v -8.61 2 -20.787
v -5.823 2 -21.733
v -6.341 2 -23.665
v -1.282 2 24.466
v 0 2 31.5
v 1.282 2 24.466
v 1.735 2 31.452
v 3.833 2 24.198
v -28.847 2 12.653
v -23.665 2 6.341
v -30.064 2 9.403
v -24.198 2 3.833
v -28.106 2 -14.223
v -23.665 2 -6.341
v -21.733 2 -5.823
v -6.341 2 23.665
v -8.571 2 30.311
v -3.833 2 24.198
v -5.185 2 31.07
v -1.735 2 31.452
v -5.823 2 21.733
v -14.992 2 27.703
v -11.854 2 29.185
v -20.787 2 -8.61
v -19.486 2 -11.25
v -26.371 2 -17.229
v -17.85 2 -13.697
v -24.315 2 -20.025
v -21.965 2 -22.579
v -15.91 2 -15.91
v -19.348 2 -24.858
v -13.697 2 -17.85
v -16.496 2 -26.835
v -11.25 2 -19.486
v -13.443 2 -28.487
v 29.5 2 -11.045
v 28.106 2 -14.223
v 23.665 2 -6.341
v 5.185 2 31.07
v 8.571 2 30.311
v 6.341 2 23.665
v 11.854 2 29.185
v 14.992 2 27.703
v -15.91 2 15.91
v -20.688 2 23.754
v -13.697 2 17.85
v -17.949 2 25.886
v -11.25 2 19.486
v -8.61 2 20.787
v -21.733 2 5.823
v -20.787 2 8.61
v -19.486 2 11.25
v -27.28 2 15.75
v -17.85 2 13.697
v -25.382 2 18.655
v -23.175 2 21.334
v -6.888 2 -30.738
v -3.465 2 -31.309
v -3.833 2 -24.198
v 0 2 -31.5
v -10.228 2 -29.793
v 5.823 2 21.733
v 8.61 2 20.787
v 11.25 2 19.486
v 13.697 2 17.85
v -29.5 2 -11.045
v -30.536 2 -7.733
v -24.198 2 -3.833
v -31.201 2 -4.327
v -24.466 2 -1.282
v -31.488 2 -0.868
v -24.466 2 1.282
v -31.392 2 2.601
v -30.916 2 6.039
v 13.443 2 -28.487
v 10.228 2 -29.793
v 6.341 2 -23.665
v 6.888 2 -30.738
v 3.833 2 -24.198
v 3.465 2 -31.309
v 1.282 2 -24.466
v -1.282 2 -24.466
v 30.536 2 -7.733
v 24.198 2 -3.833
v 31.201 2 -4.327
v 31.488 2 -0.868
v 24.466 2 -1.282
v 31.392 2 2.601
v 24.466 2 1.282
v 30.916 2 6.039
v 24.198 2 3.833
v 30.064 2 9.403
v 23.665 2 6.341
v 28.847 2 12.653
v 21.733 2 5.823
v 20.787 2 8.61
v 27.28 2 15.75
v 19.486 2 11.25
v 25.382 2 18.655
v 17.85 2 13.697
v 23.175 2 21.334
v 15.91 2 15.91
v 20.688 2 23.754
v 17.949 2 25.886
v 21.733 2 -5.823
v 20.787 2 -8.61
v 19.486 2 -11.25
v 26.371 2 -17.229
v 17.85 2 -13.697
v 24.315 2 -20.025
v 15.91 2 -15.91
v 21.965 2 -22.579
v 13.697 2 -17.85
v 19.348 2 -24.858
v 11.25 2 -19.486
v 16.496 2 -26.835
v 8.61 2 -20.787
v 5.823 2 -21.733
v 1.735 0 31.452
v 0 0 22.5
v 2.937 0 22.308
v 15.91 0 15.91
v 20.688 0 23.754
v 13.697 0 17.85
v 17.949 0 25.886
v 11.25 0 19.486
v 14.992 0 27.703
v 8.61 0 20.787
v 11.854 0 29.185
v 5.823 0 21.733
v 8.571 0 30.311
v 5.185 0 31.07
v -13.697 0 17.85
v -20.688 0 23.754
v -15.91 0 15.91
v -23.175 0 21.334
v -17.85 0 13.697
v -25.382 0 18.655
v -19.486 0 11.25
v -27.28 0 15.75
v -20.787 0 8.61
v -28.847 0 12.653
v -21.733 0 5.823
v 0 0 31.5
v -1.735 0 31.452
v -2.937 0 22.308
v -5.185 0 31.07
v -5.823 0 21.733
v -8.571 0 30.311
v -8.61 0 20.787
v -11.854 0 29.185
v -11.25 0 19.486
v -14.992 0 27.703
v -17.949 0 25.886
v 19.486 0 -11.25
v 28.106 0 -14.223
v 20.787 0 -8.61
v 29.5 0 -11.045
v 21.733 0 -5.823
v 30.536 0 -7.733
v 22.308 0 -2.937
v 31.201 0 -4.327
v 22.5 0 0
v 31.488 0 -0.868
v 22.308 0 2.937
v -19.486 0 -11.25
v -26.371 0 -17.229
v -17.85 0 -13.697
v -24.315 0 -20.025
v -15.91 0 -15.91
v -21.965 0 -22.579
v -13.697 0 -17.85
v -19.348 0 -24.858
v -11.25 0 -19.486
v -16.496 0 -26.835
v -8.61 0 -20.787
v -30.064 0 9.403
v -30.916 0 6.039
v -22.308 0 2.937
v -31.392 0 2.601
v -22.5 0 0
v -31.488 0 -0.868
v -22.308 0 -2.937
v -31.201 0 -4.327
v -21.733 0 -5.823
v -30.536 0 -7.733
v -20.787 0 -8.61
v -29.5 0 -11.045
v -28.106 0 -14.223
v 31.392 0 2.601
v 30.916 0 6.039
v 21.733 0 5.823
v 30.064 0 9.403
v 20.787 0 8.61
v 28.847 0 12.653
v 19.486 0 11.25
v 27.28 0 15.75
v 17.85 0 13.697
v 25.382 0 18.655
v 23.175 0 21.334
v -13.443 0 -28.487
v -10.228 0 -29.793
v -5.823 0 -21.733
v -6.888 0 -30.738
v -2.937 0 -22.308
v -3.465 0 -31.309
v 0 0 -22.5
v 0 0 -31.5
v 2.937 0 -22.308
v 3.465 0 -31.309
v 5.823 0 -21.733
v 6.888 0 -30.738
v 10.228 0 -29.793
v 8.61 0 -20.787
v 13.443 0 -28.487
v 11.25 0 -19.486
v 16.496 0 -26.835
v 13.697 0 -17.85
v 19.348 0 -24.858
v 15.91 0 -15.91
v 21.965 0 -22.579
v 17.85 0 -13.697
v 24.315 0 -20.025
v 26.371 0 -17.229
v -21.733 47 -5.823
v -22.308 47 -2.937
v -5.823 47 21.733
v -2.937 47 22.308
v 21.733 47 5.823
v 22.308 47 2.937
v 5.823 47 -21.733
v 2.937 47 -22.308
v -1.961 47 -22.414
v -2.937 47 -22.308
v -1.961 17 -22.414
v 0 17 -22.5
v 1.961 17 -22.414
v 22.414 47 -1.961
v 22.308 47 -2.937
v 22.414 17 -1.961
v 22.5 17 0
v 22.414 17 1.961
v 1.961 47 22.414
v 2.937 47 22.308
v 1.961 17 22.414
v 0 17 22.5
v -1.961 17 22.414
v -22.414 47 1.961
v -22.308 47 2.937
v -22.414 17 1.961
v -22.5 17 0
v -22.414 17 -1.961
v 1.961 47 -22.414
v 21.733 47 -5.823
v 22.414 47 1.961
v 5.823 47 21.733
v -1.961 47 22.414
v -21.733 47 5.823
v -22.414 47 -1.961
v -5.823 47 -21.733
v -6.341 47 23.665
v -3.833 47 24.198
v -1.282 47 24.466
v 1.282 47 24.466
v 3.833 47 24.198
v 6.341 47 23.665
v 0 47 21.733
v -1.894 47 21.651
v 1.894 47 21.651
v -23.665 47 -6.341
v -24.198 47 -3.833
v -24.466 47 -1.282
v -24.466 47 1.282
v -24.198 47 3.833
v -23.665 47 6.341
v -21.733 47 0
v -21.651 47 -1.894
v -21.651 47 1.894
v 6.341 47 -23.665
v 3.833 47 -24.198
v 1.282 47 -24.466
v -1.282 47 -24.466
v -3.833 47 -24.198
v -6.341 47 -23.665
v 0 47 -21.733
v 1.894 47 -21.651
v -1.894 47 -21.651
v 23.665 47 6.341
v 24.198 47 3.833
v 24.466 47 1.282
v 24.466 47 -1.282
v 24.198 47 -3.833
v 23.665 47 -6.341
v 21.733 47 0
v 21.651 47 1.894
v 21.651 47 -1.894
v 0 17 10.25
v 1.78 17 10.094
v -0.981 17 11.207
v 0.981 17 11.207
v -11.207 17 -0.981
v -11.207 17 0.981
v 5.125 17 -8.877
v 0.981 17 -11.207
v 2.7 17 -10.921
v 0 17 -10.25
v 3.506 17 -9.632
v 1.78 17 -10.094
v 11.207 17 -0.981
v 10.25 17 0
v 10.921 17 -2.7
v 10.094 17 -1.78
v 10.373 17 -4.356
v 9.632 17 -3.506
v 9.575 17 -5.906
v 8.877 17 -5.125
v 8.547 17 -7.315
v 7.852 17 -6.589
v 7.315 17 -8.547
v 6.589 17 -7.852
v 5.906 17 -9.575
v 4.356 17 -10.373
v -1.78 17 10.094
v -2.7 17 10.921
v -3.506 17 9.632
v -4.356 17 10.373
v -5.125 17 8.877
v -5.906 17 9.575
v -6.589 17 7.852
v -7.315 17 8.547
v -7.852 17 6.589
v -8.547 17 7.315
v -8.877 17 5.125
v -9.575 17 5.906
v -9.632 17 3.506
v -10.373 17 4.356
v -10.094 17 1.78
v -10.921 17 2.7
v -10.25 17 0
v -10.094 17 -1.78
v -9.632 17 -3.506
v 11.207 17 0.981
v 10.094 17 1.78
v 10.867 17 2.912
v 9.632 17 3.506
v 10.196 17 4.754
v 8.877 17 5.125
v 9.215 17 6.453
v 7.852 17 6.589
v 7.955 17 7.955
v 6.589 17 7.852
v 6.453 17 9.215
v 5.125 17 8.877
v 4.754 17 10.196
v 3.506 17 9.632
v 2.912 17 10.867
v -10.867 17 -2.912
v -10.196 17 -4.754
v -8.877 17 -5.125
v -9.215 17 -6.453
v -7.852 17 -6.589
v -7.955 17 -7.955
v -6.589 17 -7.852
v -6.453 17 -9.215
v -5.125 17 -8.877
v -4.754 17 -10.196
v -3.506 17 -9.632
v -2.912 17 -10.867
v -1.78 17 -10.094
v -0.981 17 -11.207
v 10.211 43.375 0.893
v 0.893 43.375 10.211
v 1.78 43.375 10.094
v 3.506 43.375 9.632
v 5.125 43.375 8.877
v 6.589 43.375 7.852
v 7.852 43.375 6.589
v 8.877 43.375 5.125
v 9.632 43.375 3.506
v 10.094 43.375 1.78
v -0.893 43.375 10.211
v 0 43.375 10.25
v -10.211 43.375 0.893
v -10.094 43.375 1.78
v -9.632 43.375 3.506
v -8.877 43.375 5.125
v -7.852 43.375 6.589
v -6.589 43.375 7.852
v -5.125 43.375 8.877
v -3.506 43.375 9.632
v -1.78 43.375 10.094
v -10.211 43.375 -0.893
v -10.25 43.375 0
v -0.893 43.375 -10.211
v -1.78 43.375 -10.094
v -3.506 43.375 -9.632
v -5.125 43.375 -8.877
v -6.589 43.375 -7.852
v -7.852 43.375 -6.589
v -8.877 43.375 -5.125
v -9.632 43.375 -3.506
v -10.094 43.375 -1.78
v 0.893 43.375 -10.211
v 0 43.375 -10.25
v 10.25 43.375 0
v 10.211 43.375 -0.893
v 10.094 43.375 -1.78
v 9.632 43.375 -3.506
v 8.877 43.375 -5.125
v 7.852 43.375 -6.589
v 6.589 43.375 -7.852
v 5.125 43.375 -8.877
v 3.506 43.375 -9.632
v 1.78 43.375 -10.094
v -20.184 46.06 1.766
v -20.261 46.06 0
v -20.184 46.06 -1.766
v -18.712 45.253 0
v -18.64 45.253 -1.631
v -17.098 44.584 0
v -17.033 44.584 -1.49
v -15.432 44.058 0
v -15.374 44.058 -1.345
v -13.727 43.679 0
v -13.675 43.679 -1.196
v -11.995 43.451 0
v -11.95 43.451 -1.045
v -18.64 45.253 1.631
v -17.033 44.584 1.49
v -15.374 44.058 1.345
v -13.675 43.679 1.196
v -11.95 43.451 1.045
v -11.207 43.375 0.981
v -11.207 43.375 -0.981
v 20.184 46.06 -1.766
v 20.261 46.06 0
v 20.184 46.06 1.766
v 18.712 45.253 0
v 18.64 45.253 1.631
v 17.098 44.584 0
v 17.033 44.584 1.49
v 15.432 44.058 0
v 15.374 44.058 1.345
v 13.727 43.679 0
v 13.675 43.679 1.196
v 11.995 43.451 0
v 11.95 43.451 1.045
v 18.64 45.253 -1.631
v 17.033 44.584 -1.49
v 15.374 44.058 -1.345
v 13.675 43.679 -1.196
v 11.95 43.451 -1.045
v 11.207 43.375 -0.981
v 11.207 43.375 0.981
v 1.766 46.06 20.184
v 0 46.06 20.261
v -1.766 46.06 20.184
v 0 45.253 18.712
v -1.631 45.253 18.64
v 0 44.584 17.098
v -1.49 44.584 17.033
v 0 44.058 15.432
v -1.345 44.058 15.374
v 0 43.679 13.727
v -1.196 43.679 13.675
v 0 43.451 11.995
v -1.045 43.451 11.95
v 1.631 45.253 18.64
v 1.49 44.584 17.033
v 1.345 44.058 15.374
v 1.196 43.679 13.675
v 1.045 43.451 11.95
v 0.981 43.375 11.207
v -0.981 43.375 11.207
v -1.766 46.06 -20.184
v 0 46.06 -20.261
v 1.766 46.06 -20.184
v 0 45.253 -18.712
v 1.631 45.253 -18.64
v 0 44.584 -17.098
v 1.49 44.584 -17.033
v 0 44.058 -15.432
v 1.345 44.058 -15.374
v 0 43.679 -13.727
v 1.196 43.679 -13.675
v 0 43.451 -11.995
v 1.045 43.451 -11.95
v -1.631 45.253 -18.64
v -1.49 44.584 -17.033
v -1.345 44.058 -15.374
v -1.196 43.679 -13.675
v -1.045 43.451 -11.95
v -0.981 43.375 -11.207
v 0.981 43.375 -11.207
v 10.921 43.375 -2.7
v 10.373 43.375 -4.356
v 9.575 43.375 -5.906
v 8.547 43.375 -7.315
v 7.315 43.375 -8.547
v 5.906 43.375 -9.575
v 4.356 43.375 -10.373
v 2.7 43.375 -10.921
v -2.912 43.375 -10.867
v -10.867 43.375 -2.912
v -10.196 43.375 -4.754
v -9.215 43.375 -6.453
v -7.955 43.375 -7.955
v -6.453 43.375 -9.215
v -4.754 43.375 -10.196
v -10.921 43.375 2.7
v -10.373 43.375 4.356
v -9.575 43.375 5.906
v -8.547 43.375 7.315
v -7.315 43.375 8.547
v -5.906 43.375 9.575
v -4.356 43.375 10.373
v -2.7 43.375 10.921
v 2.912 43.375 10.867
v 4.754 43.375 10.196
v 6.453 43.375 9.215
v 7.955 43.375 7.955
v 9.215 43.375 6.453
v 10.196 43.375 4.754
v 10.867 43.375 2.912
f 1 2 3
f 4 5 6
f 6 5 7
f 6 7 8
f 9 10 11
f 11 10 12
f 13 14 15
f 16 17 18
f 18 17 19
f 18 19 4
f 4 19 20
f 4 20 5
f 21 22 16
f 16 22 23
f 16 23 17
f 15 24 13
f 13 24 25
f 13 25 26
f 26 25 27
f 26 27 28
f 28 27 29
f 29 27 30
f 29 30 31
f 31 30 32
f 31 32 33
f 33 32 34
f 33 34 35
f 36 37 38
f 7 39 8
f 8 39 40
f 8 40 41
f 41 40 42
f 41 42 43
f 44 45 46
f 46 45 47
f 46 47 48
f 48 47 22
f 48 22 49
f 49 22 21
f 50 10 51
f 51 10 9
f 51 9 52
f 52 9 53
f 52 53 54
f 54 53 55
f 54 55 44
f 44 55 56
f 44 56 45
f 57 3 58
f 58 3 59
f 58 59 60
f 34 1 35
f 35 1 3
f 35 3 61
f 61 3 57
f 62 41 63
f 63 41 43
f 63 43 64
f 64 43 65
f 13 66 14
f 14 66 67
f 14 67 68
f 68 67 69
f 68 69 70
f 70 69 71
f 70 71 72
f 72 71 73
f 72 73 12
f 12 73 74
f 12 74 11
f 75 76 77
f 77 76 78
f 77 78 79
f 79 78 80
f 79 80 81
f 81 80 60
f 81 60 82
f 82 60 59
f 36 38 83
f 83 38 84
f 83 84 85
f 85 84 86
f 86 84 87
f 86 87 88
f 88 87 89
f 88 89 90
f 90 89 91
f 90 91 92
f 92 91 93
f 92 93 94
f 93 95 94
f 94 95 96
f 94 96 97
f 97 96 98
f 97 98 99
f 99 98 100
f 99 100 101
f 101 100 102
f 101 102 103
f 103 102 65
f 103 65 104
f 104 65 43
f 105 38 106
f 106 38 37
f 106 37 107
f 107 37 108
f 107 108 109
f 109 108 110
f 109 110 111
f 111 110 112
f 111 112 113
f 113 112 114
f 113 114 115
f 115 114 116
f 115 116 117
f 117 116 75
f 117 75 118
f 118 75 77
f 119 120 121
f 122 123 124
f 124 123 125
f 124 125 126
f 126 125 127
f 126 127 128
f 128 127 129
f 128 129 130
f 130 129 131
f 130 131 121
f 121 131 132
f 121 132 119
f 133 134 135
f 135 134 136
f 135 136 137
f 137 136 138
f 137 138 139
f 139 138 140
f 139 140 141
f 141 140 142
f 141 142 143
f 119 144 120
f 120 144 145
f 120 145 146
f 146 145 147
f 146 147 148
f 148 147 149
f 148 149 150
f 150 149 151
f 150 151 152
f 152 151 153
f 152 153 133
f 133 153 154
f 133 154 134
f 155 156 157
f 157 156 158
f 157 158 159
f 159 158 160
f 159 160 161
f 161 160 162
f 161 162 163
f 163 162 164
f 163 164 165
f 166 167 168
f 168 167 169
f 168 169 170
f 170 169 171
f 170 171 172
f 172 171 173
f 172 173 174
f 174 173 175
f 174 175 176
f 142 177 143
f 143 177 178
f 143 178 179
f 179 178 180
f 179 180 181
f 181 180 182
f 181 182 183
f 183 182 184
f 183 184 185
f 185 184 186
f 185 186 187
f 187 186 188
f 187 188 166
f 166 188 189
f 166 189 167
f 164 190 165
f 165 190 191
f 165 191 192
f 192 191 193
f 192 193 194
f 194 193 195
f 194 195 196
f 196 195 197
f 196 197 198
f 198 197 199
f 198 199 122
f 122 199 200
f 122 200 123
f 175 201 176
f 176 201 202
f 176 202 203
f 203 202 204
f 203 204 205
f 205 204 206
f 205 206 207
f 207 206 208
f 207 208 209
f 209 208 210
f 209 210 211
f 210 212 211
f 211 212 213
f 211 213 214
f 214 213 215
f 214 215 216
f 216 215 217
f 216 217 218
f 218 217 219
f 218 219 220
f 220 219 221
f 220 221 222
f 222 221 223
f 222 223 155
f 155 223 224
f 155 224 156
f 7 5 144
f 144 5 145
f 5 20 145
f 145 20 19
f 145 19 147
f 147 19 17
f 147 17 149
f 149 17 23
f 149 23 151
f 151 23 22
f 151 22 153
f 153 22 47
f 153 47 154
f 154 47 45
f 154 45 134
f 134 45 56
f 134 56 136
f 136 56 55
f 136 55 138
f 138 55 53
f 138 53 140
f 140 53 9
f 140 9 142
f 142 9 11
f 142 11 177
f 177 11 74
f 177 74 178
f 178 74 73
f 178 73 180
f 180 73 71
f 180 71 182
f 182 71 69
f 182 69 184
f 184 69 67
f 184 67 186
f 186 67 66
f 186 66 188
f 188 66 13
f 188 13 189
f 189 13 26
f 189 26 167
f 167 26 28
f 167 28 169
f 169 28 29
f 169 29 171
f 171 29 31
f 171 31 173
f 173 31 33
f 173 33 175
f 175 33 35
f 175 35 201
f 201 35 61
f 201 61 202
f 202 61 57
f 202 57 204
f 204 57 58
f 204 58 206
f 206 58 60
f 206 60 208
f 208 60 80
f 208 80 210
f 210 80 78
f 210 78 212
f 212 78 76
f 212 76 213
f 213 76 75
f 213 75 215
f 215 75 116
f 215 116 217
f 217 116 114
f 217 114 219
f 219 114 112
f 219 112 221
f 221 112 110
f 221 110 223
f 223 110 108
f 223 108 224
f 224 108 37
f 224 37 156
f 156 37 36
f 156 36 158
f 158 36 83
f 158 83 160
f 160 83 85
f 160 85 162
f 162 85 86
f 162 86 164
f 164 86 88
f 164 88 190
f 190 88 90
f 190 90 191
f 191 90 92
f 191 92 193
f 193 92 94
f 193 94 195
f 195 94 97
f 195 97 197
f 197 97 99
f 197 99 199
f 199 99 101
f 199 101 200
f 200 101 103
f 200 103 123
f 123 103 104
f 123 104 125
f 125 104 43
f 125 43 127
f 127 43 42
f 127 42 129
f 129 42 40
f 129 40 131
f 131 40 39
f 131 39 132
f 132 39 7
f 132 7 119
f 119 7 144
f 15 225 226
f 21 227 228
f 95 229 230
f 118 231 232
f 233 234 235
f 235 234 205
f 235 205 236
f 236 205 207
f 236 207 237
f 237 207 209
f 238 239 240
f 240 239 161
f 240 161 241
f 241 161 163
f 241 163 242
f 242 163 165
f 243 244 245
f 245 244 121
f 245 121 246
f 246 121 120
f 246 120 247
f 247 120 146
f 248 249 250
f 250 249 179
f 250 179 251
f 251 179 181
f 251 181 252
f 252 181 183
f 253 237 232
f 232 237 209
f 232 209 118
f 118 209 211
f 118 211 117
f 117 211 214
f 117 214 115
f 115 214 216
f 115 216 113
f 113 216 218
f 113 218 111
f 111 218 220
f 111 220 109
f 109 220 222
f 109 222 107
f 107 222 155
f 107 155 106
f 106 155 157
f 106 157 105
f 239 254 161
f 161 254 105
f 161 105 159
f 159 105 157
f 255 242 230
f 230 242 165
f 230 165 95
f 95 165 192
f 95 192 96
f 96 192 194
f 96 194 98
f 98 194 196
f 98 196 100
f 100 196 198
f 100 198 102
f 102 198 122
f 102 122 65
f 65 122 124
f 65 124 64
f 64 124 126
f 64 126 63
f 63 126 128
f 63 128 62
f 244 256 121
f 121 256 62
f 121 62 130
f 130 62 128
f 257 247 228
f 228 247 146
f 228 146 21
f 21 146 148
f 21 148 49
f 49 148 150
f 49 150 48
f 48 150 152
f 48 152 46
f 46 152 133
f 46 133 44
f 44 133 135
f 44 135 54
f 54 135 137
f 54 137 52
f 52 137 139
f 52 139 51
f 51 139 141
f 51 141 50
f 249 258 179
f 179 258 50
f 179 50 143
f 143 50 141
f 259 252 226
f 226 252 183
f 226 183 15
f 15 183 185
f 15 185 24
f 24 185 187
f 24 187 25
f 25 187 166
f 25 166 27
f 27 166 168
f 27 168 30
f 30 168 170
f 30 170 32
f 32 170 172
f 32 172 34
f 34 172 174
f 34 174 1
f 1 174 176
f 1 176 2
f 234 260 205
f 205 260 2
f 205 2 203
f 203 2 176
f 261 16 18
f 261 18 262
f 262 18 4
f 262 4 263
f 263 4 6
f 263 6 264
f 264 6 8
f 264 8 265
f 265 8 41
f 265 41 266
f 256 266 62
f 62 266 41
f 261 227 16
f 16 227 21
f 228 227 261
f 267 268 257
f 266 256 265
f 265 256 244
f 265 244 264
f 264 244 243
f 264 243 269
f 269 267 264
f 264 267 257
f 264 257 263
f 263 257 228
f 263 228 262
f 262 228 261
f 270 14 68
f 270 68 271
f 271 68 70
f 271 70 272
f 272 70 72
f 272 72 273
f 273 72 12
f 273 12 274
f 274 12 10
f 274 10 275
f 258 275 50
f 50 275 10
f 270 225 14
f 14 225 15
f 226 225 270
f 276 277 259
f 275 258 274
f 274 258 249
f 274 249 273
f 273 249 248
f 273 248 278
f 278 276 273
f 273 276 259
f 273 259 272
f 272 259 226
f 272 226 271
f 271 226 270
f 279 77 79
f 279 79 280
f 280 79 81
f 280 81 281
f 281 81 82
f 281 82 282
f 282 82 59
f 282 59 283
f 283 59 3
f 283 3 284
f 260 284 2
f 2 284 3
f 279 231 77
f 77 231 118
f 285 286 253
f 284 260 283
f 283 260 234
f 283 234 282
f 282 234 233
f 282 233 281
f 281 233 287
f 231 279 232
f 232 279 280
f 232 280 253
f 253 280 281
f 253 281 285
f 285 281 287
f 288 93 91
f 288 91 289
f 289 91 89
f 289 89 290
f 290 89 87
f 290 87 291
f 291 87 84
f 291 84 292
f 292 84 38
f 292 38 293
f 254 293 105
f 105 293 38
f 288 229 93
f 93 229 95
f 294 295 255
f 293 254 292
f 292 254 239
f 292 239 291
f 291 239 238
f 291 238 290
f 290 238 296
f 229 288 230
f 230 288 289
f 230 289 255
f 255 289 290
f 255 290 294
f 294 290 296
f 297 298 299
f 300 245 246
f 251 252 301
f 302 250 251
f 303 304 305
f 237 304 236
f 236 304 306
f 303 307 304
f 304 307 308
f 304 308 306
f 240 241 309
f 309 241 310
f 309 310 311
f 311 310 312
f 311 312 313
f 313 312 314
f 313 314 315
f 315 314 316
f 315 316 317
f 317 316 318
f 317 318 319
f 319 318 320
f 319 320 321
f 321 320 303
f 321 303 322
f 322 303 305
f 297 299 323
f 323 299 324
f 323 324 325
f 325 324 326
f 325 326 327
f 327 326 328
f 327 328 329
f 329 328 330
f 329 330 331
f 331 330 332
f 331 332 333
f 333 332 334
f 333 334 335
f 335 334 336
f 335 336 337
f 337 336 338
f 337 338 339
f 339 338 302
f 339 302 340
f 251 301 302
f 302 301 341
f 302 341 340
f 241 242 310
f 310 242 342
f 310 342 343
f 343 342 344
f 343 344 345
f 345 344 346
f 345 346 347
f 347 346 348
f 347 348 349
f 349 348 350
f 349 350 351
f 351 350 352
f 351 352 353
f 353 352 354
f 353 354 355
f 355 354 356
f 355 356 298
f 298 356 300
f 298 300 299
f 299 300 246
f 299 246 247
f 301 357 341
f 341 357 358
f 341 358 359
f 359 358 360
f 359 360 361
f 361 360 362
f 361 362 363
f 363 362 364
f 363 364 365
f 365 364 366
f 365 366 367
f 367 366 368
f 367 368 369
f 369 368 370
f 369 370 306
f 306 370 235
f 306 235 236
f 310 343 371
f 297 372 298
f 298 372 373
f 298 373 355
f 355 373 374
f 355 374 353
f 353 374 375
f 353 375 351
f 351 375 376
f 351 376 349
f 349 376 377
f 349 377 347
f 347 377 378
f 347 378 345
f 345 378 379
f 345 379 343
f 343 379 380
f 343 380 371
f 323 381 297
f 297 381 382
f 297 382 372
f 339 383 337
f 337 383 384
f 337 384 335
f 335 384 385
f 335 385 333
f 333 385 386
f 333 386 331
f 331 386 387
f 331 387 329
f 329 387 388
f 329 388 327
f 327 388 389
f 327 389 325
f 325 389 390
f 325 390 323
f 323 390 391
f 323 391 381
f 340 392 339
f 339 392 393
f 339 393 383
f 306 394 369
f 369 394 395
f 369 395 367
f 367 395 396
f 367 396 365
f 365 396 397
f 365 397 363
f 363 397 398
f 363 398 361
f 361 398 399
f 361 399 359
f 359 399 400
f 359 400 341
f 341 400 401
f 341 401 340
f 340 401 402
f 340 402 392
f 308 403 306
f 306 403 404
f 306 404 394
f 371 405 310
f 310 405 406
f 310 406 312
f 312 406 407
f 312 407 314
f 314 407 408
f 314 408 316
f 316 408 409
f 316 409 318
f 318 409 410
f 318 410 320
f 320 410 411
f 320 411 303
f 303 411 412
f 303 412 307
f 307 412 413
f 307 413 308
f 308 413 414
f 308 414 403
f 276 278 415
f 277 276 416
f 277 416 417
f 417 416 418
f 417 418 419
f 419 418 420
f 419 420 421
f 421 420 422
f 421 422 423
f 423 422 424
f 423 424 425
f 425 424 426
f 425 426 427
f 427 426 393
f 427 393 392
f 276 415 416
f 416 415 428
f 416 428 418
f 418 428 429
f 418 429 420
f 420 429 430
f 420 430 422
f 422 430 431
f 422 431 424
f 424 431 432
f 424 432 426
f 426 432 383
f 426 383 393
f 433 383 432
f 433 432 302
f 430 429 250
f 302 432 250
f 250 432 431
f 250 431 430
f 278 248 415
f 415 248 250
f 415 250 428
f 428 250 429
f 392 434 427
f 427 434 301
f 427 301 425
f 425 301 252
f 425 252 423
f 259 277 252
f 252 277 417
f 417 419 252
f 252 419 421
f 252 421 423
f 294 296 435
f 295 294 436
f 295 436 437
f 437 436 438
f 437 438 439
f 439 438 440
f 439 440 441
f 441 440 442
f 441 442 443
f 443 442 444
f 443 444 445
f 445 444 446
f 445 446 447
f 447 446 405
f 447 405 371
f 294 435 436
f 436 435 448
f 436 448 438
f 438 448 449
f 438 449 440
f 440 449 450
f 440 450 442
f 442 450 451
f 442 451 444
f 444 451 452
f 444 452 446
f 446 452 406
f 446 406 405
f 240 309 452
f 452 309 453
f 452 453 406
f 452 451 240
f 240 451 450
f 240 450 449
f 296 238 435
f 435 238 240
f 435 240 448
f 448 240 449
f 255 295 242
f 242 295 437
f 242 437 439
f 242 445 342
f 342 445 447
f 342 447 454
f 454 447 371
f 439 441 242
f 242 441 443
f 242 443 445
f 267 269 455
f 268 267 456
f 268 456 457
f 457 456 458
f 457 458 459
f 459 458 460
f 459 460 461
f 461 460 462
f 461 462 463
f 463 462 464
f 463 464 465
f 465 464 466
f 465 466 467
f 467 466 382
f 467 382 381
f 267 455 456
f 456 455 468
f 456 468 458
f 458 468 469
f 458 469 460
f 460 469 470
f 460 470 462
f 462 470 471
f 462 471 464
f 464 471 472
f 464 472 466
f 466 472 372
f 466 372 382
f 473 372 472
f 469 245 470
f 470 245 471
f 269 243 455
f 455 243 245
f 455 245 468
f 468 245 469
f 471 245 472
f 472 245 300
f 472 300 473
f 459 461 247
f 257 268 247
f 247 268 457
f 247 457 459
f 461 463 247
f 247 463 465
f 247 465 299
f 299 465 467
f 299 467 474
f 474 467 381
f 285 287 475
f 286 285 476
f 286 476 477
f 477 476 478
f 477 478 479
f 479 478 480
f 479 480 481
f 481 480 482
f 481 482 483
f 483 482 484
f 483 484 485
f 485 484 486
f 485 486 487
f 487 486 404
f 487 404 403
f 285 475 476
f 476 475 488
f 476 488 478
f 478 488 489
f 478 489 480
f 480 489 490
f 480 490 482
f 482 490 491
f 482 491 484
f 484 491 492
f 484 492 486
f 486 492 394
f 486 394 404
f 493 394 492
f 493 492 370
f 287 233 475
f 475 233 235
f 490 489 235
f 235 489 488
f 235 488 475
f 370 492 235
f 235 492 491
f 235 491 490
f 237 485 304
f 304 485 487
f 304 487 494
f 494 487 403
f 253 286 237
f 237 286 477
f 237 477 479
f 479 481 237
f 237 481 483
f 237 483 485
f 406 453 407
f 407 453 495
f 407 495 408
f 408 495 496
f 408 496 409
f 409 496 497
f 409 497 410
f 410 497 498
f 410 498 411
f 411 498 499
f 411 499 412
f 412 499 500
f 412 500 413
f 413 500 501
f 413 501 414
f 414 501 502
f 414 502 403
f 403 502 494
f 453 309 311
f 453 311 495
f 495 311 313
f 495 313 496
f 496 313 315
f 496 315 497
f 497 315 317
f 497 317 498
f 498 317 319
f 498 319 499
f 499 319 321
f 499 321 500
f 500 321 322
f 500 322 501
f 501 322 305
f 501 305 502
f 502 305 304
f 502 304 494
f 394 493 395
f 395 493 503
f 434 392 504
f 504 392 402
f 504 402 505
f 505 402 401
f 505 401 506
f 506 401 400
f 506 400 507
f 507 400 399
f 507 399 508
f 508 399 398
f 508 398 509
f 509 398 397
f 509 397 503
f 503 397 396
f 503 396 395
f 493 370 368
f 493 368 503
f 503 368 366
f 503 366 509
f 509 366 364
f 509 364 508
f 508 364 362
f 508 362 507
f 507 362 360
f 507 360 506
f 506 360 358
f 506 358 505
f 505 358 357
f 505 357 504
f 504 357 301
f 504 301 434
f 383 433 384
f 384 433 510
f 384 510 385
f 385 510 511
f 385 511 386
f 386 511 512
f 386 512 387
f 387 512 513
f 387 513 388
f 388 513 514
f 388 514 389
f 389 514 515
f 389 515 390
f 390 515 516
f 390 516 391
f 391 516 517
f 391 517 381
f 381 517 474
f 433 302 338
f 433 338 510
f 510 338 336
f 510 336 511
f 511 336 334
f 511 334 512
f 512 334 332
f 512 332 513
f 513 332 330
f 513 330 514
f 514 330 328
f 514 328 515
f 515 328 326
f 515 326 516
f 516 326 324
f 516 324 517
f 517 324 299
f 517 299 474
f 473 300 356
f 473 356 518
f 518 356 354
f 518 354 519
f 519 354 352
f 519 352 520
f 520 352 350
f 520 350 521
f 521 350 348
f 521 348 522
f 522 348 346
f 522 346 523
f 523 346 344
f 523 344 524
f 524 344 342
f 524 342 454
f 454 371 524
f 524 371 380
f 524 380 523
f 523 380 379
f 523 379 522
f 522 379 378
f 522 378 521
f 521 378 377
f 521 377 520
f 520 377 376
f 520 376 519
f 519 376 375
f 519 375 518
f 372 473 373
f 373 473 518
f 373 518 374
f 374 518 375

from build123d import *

# Parameters (mm, degrees)
ESBO_O1_R                = 31.5
ESBO_O1_R_2              = 22.5
RESSALTO_EXTRUS_O1_DEPTH = 2
RESSALTO_EXTRUS_O2_DEPTH = 45
REVOLU_O1_ANGLE          = 10
PADR_OCIRCULAR1_COUNT    = 2
PADR_OCIRCULAR1_ANGLE    = 90
ESBO_O5_R                = 11.25
ESBO_O5_R_2              = 10.25
RESSALTO_EXTRUS_O3_DEPTH = 26.37477


with BuildPart() as part:
    # Esboço1 → Ressalto-extrusão1 (new body)
    with BuildSketch(Plane(origin=(0, 0, 0), x_dir=(1, 0, 0), z_dir=(0, 1, 0))):
        with Locations(Location((0, 0, 0), (0, 0, 270))):
            Circle(ESBO_O1_R)
        with Locations(Location((0, 0, 0), (0, 0, 270))):
            Circle(ESBO_O1_R_2, mode=Mode.SUBTRACT)
    extrude(amount=RESSALTO_EXTRUS_O1_DEPTH)

    # Esboço3 → Ressalto-extrusão2 (add)
    with BuildSketch(Plane(origin=(0, 2, 0), x_dir=(1, 0, 0), z_dir=(0, 1, 0))):
        with BuildLine():
            Line((-5.823428515, -21.733331092), (-6.341066605, -23.665182744))
            ThreePointArc((-6.341066605, -23.665182744), (0, -24.5), (6.341066605, -23.665182744))
            Line((6.341066605, -23.665182744), (5.823428515, -21.733331092))
            ThreePointArc((5.823428515, -21.733331092), (0, -22.5), (-5.823428515, -21.733331092))
        make_face()
        with BuildLine():
            Line((-21.733331092, -5.823428515), (-23.665182744, -6.341066605))
            ThreePointArc((-23.665182744, -6.341066605), (-24.5, 0), (-23.665182744, 6.341066605))
            Line((-23.665182744, 6.341066605), (-21.733331092, 5.823428515))
            ThreePointArc((-21.733331092, 5.823428515), (-22.5, 0), (-21.733331092, -5.823428515))
        make_face()
        with BuildLine():
            Line((-5.823428515, 21.733331092), (-6.341066605, 23.665182744))
            ThreePointArc((-6.341066605, 23.665182744), (0, 24.5), (6.341066605, 23.665182744))
            Line((6.341066605, 23.665182744), (5.823428515, 21.733331092))
            ThreePointArc((5.823428515, 21.733331092), (0, 22.5), (-5.823428515, 21.733331092))
        make_face()
        with BuildLine():
            Line((21.733331092, 5.823428515), (23.665182744, 6.341066605))
            ThreePointArc((23.665182744, 6.341066605), (24.5, 0), (23.665182744, -6.341066605))
            Line((23.665182744, -6.341066605), (21.733331092, -5.823428515))
            ThreePointArc((21.733331092, -5.823428515), (22.5, 0), (21.733331092, 5.823428515))
        make_face()
    extrude(amount=RESSALTO_EXTRUS_O2_DEPTH)

    # Esboço4 → Revolução1 (revolve, symmetric)
    with BuildSketch(Plane.XY) as revolu_o1_sk:
        with BuildLine():
            Line((-24.5, 47), (-21.733331092, 47))
            ThreePointArc((-21.733331092, 47), (-16.270987924, 44.302599501), (-10.25, 43.374770442))
            Line((-10.25, 43.374770442), (-10.25, 17))
            Line((-10.25, 17), (-24.5, 17))
            Line((-24.5, 17), (-24.5, 47))
        make_face()
        with BuildLine():
            Line((10.25, 17), (24.5, 17))
            Line((24.5, 17), (24.5, 47))
            Line((24.5, 47), (21.733331092, 47))
            ThreePointArc((21.733331092, 47), (16.270987924, 44.302599501), (10.25, 43.374770442))
            Line((10.25, 43.374770442), (10.25, 17))
        make_face()
    revolu_o1 = revolve(axis=Axis((0, 0, 0), (0, 1, 0)), revolution_arc=REVOLU_O1_ANGLE / 2)
    revolu_o1 = revolu_o1 + revolve(revolu_o1_sk.sketch, axis=Axis((0, 0, 0), (0, -1, 0)), revolution_arc=REVOLU_O1_ANGLE / 2)

    # PadrãoCircular1: Revolução1 ×2 about axis
    padr_ocircular1_axis = Axis((0, 0, 0), (0, 1, 0))
    for i in range(1, PADR_OCIRCULAR1_COUNT):
        add(revolu_o1.rotate(padr_ocircular1_axis, i * PADR_OCIRCULAR1_ANGLE / (PADR_OCIRCULAR1_COUNT - 1)))

    # Esboço5 → Ressalto-extrusão3 (add)
    with BuildSketch(Plane.XZ.offset(-17)):
        Circle(ESBO_O5_R)
        Circle(ESBO_O5_R_2, mode=Mode.SUBTRACT)
    extrude(amount=-RESSALTO_EXTRUS_O3_DEPTH)


solid = part.part
